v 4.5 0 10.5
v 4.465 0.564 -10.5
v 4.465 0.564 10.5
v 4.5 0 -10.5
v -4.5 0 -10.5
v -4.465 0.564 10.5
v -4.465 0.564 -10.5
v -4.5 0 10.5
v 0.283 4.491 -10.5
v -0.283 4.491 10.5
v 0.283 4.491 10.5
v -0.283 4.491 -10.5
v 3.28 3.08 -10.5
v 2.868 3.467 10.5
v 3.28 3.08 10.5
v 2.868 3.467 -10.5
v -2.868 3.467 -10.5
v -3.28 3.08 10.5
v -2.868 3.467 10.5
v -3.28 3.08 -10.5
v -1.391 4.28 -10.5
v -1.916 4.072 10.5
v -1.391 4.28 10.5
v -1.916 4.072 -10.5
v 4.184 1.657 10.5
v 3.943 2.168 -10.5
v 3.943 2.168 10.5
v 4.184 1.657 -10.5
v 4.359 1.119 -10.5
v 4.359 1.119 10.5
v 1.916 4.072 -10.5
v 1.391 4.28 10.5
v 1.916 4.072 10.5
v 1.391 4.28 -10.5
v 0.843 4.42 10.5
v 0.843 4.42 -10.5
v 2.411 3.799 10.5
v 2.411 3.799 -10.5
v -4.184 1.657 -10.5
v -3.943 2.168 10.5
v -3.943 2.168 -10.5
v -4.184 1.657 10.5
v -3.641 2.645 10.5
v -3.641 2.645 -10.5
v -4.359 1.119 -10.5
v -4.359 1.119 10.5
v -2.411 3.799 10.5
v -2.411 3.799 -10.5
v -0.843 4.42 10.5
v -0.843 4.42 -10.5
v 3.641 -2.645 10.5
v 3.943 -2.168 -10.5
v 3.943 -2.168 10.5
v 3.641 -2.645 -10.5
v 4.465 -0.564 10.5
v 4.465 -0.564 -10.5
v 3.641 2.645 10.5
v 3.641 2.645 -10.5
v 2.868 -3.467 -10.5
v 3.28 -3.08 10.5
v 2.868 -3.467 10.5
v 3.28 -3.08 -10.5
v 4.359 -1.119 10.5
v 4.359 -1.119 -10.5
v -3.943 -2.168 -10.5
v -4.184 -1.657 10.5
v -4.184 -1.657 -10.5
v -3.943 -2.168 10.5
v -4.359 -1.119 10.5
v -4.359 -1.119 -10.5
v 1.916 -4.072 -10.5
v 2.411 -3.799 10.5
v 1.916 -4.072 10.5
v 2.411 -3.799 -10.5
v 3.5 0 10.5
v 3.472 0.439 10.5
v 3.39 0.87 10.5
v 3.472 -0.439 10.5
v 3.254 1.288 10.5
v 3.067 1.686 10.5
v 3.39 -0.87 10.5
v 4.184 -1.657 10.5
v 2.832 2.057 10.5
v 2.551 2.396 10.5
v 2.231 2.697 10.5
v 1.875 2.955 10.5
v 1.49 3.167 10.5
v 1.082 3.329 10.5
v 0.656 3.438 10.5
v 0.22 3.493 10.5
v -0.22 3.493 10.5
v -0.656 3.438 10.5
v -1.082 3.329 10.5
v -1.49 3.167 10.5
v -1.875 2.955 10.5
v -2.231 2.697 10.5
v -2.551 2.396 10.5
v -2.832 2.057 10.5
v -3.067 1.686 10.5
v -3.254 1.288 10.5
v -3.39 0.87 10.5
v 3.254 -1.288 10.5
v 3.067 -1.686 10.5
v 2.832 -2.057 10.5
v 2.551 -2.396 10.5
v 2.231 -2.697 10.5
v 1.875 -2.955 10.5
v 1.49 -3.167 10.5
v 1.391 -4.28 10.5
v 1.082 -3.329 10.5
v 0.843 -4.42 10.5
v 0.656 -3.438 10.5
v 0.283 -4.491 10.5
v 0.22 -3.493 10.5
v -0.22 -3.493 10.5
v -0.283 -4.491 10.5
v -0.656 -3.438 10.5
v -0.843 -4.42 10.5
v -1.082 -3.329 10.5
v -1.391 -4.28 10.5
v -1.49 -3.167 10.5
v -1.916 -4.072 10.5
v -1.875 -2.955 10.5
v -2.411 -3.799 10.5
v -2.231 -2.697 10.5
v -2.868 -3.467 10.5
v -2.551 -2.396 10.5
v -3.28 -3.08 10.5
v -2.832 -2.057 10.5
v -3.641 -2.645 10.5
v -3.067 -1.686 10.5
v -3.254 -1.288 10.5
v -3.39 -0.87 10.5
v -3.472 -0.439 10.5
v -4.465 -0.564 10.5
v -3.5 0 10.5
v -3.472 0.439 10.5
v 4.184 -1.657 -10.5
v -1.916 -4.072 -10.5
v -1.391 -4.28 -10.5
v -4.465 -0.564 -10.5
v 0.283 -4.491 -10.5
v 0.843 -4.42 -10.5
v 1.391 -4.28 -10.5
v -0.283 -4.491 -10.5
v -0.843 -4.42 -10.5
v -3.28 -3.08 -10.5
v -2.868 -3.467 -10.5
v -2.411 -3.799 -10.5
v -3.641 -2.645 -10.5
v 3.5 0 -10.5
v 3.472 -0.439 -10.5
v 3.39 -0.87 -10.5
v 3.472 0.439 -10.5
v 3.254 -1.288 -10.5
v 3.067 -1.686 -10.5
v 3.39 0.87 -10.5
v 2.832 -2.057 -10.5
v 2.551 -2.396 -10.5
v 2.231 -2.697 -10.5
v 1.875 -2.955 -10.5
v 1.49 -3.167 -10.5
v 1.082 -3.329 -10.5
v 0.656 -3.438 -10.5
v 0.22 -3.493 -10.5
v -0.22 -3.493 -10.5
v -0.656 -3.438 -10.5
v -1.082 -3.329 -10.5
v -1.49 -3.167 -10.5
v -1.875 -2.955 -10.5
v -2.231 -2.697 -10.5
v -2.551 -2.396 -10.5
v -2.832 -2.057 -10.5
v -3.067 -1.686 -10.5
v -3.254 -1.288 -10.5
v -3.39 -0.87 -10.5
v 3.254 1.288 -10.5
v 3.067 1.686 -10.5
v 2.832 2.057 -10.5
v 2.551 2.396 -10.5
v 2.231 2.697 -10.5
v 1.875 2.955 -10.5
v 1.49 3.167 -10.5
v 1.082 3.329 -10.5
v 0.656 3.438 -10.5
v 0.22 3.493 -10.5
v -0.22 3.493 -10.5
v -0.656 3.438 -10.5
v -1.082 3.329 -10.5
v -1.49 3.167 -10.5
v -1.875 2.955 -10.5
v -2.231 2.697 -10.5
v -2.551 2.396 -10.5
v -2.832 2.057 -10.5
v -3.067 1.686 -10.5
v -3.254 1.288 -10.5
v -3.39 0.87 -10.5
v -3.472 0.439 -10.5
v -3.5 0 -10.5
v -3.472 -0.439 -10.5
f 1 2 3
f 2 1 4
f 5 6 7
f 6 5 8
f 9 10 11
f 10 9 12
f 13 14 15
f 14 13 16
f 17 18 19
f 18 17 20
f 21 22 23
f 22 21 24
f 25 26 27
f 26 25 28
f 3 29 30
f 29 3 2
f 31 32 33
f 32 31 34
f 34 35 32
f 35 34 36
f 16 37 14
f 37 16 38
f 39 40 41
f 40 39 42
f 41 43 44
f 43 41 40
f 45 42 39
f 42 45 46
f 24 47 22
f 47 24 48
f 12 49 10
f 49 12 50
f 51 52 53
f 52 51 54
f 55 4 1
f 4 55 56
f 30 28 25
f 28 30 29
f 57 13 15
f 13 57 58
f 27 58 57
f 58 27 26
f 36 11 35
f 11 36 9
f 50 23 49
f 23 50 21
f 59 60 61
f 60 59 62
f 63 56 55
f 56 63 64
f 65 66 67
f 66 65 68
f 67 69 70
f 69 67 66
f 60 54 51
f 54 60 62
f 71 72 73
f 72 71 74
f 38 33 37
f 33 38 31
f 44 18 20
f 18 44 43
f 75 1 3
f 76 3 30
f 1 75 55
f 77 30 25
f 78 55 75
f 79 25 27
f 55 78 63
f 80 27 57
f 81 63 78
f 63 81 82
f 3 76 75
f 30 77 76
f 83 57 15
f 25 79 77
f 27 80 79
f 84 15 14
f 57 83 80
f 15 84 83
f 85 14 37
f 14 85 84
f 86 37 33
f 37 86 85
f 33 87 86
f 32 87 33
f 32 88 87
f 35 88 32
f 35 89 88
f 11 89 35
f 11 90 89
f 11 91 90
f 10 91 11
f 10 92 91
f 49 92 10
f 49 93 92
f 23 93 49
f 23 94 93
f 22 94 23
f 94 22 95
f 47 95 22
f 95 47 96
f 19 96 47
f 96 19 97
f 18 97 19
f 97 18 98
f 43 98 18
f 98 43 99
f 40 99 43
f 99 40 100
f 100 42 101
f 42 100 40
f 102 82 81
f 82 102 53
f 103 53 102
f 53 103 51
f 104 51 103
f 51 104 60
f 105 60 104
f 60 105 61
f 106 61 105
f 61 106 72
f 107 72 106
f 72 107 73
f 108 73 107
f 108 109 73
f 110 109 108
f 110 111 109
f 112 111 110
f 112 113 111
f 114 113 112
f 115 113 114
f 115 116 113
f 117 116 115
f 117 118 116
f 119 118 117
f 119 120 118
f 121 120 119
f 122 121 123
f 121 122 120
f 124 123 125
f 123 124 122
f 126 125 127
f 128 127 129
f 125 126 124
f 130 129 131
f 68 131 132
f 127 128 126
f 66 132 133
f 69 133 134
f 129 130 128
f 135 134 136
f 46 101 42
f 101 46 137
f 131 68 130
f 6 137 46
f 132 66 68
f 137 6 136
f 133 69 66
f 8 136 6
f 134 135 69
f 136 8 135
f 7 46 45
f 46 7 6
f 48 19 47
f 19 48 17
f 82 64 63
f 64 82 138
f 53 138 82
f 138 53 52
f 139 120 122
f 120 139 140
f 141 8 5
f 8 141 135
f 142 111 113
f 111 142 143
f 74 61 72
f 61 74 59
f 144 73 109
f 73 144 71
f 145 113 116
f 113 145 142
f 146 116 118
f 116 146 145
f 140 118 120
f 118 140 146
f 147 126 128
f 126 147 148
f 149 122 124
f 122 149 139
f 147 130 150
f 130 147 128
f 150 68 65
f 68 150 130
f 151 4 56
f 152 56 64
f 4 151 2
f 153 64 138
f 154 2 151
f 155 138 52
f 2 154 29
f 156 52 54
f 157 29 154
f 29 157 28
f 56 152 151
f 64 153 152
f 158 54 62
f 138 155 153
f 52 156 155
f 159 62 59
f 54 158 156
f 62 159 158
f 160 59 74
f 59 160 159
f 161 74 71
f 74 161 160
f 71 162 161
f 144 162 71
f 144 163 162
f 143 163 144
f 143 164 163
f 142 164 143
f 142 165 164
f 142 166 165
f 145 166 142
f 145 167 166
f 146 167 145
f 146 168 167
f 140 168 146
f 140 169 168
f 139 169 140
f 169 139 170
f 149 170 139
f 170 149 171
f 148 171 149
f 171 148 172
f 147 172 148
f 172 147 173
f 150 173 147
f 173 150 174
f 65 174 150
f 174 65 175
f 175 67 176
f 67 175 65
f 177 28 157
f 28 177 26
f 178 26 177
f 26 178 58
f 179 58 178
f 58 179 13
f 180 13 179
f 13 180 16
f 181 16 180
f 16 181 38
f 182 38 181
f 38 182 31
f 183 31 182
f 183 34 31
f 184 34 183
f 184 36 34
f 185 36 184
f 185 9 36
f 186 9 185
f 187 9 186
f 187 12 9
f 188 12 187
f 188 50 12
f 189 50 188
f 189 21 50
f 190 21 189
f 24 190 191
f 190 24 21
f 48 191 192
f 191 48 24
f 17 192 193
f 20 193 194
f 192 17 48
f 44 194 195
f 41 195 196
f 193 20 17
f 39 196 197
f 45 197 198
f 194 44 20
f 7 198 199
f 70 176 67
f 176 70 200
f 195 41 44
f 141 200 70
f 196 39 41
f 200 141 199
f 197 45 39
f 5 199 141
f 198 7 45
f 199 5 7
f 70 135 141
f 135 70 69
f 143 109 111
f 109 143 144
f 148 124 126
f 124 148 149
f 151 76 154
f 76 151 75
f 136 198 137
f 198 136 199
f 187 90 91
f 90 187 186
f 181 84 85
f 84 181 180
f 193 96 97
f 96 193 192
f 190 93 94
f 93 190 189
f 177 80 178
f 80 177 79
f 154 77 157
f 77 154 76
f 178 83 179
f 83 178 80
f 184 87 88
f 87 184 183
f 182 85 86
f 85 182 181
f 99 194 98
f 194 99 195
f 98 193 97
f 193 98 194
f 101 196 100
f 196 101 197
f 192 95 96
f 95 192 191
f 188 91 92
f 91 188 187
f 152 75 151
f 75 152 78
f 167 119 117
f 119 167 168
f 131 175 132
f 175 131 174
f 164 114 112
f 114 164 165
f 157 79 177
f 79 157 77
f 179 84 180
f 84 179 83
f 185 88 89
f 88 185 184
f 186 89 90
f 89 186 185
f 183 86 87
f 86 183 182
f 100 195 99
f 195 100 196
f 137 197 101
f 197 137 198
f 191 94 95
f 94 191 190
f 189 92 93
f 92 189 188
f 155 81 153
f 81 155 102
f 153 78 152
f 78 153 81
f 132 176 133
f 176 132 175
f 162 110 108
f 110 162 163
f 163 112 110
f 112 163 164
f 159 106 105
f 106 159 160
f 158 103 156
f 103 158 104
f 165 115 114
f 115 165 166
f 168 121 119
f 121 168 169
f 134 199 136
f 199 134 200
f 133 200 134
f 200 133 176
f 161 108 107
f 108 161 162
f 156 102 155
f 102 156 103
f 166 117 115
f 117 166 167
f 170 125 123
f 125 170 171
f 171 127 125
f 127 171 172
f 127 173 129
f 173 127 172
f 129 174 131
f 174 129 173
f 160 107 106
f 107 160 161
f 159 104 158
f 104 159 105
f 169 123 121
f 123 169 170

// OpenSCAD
$fn = 50;


difference() {
	union() {
		translate(v = [0, 0, -10.5000000000]) {
			cylinder(h = 21, r = 4.5000000000);
		}
	}
	union() {
		translate(v = [0, 0, -100.0000000000]) {
			cylinder(h = 200, r = 3.5000000000);
		}
	}
}
